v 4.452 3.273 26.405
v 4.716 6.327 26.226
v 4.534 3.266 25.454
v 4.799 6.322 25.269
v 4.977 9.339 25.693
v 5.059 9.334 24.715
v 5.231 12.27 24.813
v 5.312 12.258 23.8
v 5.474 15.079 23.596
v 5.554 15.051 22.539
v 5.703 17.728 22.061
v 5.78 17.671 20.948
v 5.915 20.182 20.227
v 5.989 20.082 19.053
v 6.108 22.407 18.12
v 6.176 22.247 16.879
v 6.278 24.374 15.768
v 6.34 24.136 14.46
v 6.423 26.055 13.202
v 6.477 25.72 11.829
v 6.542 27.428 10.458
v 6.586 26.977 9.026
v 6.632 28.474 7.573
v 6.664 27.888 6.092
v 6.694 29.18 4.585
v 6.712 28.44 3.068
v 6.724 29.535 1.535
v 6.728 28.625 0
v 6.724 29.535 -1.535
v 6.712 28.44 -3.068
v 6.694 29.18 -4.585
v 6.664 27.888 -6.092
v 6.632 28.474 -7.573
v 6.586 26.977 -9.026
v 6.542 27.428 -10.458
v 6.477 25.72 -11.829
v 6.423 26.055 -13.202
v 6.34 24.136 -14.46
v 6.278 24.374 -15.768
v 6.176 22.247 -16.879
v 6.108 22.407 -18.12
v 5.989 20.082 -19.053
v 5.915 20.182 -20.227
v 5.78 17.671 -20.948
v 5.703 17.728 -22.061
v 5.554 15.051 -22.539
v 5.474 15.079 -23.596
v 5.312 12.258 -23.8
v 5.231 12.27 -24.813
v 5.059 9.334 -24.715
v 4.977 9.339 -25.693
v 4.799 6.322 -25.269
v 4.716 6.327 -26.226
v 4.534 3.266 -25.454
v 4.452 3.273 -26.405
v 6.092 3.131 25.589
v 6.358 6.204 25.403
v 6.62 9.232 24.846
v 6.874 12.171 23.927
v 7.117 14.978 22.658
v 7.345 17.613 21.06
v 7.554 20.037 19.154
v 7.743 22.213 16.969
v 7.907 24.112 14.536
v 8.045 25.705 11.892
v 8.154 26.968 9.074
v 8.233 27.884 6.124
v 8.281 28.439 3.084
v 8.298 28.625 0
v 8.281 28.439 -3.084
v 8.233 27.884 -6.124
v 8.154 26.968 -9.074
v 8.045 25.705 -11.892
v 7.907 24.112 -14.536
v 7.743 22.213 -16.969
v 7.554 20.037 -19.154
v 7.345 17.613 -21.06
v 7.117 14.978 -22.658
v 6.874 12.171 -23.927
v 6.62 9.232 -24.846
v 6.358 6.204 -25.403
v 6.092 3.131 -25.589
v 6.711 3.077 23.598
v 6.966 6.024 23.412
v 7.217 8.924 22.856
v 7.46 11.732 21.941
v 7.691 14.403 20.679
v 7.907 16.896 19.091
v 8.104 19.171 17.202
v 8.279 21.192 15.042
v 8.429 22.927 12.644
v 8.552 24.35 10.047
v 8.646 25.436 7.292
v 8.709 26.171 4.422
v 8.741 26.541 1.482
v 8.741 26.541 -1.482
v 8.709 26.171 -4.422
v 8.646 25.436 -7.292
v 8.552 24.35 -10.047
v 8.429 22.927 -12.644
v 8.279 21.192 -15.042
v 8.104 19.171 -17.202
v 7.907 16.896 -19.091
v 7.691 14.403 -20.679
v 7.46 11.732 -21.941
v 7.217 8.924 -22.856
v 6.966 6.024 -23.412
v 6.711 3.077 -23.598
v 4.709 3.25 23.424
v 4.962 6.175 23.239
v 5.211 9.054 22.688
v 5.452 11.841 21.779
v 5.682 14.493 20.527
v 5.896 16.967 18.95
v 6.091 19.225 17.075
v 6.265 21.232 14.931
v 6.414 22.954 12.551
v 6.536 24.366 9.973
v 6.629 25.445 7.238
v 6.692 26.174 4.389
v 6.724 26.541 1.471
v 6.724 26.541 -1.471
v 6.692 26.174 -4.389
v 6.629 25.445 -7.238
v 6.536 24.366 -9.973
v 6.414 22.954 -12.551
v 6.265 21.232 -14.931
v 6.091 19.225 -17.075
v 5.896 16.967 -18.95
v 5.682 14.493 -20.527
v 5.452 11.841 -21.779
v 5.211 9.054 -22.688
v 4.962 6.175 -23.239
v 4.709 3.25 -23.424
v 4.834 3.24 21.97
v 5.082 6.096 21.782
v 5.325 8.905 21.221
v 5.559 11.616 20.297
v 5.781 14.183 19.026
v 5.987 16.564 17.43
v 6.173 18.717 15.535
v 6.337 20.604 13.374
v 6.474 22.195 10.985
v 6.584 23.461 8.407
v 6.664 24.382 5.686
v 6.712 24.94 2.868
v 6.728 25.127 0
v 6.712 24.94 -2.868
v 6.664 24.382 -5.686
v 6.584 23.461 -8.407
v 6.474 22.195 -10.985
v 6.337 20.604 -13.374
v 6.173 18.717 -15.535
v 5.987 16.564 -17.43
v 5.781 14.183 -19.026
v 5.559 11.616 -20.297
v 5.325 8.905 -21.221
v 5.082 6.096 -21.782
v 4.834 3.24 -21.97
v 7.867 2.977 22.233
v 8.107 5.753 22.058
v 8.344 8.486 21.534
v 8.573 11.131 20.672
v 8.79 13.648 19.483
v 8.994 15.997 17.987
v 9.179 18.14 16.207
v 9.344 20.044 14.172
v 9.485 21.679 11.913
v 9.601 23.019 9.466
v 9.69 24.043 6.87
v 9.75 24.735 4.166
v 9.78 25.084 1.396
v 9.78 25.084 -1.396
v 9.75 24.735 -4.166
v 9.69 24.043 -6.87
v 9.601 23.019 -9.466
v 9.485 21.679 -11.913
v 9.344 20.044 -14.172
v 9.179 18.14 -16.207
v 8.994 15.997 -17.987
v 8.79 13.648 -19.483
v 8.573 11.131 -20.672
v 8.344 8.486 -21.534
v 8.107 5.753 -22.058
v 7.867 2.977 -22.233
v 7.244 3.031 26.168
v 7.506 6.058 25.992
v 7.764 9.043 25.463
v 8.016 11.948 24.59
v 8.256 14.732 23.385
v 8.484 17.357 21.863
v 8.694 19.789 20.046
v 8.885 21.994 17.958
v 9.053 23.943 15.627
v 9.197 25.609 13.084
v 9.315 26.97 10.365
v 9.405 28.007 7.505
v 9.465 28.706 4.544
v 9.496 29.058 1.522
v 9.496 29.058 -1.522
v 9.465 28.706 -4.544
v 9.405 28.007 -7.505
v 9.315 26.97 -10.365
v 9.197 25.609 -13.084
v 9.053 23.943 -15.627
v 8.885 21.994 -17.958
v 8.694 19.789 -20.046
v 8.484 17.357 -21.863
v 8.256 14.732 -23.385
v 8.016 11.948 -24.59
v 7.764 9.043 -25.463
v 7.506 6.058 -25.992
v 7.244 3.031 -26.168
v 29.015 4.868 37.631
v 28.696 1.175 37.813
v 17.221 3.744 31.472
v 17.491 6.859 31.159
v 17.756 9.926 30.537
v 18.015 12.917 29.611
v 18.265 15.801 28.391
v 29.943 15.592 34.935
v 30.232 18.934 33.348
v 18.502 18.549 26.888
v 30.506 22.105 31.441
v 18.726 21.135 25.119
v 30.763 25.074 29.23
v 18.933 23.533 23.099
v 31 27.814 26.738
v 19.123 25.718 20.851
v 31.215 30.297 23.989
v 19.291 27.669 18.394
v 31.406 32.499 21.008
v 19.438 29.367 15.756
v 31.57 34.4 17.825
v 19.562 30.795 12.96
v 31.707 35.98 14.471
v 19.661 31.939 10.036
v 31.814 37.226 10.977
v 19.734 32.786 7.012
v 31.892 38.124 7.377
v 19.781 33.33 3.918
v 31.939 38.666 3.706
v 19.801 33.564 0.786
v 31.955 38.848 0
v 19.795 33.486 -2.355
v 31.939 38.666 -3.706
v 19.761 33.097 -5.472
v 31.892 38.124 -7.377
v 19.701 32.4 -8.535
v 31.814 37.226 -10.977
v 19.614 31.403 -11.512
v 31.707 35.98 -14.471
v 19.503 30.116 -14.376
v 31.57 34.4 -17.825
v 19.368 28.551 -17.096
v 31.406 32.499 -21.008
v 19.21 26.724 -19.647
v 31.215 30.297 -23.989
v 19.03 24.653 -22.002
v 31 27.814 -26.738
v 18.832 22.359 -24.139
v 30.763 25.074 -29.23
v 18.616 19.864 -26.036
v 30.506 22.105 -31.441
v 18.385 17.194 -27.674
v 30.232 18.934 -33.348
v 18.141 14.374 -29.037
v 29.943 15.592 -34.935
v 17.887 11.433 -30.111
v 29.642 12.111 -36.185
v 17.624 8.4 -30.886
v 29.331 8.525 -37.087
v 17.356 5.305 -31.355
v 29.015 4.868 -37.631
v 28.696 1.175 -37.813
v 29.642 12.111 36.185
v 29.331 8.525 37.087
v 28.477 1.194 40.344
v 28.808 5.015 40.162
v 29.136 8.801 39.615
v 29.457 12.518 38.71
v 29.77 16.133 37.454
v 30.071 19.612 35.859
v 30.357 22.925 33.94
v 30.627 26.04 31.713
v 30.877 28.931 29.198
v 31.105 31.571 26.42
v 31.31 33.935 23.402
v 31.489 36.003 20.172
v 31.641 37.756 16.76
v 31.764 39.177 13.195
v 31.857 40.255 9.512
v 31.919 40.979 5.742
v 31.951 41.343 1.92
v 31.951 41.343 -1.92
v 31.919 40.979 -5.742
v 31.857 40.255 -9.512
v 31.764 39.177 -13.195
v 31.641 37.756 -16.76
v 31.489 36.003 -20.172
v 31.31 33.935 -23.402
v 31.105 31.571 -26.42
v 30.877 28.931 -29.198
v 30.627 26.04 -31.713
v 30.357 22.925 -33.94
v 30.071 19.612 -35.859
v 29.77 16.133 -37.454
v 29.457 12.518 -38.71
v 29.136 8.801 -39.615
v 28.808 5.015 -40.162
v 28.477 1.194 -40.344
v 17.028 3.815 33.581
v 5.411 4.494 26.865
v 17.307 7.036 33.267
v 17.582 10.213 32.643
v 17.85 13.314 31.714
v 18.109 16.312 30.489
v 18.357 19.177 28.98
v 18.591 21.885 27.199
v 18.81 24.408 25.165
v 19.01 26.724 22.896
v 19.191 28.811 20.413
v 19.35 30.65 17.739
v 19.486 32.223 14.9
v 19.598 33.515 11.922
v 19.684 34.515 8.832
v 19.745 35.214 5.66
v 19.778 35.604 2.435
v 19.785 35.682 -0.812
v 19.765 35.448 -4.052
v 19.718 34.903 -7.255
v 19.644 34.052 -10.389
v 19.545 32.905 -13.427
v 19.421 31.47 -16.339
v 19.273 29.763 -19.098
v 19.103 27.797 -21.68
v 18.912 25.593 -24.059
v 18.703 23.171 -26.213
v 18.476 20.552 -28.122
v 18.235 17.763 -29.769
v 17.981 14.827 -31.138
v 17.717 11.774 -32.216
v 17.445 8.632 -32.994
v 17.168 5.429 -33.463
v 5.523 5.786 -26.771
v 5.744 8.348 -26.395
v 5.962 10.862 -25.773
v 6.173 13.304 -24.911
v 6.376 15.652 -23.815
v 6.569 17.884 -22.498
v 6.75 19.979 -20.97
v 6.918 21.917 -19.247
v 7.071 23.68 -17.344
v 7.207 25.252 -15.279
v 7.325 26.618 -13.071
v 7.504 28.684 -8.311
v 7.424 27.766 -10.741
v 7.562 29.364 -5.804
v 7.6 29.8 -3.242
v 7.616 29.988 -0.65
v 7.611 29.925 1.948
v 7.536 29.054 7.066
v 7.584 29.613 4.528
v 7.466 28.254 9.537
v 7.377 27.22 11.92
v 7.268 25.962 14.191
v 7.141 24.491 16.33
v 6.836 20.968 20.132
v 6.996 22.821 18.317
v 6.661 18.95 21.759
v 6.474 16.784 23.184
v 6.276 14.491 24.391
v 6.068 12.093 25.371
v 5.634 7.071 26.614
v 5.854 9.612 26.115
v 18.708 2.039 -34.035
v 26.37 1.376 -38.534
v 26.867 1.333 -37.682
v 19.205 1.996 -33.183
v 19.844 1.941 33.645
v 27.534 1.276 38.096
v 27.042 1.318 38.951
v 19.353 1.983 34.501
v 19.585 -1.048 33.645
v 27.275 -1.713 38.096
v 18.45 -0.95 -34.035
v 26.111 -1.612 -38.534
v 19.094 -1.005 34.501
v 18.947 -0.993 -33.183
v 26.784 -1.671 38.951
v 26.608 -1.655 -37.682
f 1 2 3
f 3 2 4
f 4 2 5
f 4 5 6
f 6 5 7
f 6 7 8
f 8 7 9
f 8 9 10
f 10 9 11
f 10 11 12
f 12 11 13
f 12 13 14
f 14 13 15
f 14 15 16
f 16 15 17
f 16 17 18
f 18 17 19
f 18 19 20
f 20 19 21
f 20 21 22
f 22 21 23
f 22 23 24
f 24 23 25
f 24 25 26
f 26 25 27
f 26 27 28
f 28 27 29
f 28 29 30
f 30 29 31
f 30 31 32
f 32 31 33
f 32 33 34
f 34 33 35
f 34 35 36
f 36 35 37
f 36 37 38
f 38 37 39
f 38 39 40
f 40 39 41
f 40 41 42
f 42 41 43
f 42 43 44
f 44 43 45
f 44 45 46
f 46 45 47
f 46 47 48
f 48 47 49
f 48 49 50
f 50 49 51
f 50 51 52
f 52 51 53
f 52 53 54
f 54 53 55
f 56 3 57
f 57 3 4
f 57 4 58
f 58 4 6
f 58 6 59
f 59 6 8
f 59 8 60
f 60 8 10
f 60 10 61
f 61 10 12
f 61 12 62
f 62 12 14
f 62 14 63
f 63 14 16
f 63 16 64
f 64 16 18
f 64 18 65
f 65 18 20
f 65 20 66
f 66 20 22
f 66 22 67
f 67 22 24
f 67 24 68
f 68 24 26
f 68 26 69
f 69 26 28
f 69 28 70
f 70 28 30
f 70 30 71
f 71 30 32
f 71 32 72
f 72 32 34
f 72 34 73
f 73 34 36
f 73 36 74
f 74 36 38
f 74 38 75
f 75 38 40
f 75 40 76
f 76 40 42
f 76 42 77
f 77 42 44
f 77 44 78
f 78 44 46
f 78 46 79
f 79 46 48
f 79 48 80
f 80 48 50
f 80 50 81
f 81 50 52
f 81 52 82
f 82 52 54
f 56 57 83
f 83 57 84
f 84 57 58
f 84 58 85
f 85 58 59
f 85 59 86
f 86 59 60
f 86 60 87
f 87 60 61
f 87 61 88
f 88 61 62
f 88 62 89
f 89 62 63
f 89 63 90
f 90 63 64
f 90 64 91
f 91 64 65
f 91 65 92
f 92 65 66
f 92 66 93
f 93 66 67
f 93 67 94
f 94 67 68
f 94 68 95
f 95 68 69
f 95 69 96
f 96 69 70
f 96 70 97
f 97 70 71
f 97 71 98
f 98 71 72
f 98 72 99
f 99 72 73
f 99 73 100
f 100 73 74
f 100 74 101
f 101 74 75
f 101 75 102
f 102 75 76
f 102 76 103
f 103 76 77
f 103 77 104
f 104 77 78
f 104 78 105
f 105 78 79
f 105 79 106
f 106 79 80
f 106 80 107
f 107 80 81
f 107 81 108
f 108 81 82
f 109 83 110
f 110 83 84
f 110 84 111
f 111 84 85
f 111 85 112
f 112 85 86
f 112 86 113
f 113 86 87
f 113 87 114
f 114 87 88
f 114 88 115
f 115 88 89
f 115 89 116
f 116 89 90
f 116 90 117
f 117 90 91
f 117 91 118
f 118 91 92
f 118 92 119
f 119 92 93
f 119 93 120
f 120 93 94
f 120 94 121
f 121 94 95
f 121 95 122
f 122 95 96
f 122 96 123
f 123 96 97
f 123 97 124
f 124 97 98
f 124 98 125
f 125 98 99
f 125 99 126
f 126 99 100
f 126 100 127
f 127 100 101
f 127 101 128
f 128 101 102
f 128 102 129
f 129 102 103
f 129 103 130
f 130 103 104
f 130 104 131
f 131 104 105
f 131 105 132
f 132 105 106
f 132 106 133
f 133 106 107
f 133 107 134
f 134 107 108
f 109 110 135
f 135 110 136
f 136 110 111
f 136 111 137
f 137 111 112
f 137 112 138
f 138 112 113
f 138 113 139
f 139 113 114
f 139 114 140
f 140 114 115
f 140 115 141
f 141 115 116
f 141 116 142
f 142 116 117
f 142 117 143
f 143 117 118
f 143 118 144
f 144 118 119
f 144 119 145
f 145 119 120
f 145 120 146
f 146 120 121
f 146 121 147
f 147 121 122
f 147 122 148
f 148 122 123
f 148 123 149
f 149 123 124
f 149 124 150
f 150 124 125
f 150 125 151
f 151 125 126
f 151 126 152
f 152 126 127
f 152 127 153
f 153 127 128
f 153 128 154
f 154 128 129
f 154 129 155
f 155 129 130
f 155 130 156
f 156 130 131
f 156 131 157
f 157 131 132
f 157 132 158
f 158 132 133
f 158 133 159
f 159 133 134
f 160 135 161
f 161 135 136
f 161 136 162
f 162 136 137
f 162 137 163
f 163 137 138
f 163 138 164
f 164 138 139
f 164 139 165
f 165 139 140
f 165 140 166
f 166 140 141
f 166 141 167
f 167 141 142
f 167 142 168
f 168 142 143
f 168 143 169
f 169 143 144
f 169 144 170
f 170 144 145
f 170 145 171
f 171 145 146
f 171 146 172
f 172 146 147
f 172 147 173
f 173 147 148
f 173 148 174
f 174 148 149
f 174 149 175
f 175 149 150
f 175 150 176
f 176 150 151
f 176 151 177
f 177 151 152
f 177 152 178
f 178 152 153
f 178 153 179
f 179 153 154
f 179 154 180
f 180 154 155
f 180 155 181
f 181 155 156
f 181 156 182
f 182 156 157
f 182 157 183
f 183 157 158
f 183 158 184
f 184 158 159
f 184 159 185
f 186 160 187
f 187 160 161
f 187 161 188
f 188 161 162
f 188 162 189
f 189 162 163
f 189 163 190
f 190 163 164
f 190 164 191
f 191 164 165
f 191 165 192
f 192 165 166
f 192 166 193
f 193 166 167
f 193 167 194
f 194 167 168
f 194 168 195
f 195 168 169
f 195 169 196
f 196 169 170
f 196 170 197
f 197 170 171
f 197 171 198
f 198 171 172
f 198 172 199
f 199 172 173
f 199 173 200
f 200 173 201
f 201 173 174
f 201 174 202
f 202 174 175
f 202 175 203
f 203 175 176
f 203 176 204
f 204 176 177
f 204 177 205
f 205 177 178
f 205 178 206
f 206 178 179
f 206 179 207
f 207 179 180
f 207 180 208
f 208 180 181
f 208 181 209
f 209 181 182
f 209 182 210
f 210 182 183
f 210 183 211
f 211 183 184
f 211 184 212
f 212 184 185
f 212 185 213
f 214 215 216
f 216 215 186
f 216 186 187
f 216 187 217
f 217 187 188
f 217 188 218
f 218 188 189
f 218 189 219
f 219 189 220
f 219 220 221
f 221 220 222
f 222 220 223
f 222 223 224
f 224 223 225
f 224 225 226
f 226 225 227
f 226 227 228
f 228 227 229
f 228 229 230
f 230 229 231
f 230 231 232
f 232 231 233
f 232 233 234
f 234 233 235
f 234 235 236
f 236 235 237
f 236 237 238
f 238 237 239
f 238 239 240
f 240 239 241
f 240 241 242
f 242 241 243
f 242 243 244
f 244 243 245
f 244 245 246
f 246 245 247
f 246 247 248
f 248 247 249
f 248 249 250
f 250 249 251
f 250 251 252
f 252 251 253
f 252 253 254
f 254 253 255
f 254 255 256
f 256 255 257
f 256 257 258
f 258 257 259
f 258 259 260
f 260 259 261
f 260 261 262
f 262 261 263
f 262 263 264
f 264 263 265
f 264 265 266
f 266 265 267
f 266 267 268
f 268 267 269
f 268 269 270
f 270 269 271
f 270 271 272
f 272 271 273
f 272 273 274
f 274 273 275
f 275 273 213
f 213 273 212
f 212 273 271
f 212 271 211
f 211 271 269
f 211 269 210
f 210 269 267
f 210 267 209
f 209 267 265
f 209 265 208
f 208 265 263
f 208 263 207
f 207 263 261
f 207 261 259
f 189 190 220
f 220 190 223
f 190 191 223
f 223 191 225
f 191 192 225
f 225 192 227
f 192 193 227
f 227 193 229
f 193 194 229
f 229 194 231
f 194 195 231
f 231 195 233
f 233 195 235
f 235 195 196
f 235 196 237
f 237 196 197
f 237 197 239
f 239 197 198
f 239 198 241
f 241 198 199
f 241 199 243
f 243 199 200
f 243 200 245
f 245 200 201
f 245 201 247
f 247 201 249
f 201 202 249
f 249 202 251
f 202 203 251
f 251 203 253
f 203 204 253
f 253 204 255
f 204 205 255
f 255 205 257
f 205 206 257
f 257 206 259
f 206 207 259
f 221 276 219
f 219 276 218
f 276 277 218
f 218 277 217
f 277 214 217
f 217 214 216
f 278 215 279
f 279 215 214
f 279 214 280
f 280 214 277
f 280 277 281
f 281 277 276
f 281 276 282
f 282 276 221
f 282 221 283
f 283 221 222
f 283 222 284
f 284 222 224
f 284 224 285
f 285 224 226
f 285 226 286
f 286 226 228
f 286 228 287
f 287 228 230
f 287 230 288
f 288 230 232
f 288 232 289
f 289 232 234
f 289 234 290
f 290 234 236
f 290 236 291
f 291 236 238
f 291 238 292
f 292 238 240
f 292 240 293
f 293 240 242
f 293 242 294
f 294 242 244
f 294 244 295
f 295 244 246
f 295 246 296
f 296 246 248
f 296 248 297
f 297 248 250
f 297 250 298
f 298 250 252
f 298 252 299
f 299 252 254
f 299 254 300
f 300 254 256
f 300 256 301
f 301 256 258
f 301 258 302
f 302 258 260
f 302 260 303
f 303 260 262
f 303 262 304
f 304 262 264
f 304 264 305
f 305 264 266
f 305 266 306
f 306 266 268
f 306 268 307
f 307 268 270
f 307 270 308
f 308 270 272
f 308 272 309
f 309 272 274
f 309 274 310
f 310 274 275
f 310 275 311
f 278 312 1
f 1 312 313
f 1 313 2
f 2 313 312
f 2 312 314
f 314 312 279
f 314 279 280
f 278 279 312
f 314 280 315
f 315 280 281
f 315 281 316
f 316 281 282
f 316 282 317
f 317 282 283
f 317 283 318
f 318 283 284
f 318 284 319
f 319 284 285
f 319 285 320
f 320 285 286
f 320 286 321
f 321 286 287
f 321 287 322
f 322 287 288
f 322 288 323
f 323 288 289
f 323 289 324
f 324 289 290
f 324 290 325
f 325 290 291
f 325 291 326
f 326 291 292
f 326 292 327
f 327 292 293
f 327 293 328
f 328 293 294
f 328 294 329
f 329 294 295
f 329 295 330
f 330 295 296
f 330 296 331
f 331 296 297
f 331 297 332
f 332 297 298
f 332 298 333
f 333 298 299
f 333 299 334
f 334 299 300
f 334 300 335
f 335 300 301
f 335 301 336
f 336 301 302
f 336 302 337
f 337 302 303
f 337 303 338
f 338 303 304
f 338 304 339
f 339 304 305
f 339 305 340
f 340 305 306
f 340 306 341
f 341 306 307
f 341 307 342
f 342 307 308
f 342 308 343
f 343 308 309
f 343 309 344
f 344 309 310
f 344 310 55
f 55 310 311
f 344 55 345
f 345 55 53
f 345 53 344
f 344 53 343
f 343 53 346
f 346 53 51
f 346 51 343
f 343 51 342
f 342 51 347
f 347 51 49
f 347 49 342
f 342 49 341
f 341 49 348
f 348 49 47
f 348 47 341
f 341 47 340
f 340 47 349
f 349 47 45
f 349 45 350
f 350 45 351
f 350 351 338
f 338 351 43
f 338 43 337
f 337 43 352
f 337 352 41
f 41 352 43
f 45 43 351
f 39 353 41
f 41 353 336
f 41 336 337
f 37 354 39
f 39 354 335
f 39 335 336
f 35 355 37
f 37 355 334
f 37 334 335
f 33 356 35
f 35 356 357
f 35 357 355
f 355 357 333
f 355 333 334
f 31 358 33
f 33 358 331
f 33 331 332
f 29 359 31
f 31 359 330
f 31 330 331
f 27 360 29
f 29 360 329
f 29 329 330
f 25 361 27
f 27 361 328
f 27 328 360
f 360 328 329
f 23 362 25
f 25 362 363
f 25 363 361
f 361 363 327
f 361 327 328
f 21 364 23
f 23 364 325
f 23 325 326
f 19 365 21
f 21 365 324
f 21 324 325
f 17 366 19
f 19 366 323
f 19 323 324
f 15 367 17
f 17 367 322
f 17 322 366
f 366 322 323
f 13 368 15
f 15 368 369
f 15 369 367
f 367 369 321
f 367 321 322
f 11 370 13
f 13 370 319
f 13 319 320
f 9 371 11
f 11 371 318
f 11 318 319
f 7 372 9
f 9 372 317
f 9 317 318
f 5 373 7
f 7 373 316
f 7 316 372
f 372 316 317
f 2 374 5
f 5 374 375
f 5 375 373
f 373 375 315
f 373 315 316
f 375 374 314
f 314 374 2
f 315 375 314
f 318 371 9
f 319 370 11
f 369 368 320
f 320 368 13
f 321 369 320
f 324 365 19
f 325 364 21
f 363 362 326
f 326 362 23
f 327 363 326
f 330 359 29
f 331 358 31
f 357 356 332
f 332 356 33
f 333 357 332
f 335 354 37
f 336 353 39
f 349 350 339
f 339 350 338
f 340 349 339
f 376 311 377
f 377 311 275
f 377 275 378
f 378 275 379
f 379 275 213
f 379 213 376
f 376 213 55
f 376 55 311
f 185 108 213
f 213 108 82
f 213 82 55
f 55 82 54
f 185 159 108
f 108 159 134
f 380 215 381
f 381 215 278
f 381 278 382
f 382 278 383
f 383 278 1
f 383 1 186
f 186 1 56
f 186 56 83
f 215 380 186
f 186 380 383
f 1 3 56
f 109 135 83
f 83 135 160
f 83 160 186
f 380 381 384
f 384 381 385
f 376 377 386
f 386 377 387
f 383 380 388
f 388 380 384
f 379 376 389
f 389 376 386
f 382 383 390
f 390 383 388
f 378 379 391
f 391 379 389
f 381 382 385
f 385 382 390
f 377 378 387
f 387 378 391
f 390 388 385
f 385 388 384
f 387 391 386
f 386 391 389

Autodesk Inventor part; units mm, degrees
ref_plane "YZ Plane" through (0, 0, 0) normal (1, 0, 0) x (0, 1, 0)
ref_plane "XZ Plane" through (0, 0, 0) normal (0, 1, 0) x (-1, 0, 0)
ref_plane "XY Plane" through (0, 0, 0) normal (0, 0, 1) x (1, 0, 0)
sketch "Sketch1" plane through (0, 0, 0) normal (1, 0, 0) x (0, 1, 0)
  arc A0 (6, 5) -> (0, 6.4776) centre (1.5083, -0.3184) ccw
  arc A1 (0, 6.4776) -> (-6, 2) centre (-0.0372, 0.2686) ccw
  arc A2 (-6, 2) -> (-5, -3.4628) centre (-1.5043, 0) ccw
  arc A3 (-5, -3.4628) -> (2, -5.5969) centre (1.6627, 5.8444) ccw
  arc A4 (2, -5.5969) -> (6.9353, -3.4628) centre (1.5482, 2.2219) ccw
  arc A5 (6, 5) -> (13, 1) centre (22.0402, 24.9454) ccw
  arc A6 (13, -1) -> (6.9353, -3.4628) centre (16.5953, -18.5517) ccw
  arc A7 (13, -1) -> (13, 1) centre (11.912, 0) ccw
  arc A8 (15.1251, -1.2068) -> (15.1251, 1.1192) centre (13.8597, -0.0438) ccw
  arc A9 (6.9841, 5.7712) -> (15.1251, 1.1192) centre (25.6388, 28.9677) ccw
  arc A10 (6.9841, 5.7712) -> (0.0061, 7.4897) centre (1.7602, -0.414) ccw
  arc A11 (0.0061, 7.4897) -> (-6.9719, 2.2822) centre (-0.0372, 0.2686) ccw
  arc A12 (-6.9719, 2.2822) -> (-5.8089, -4.0711) centre (-1.7435, -0.0438) ccw
  arc A13 (-5.8089, -4.0711) -> (2.3321, -6.5529) centre (1.9397, 6.7532) ccw
  arc A14 (2.3321, -6.5529) -> (8.0718, -4.0711) centre (1.8067, 2.5403) ccw
  arc A15 (15.1251, -1.2068) -> (8.0718, -4.0711) centre (19.3063, -21.6193) ccw
  point P0 (0, 0)
sketch "Sketch2" plane through (0, 0, 0) normal (0, 0, 1) x (1, 0, 0)
  arc A0 (4.5893, 15.6275) -> (5.3653, 12.7341) centre (8.4769, 15.1194) ccw
  arc A1 (7.1334, 6.0475) -> (5.3653, 12.7341) centre (-9.3019, 5.2787) ccw
  arc A2 (4, -1) -> (7.1334, 6.0475) centre (-2.3212, 6.0308) ccw
  arc A3 (4, -1) -> (2.2783, -7.605) centre (15.174, -7.4395) ccw
  arc A4 (4.5893, 15.6275) -> (-5.4042, 15.6275) centre (-0.4074, 13.9881) ccw
  arc A5 (-4.7137, -7.4395) -> (2.2783, -7.605) centre (-1.0169, 0.9638) ccw
  arc A6 (-5.4042, 15.6275) -> (-4.7137, -7.4395) centre (15.8945, 4.7212) ccw
  point P0 (0, 0)
  point P1 (16.0644, 6.0537)
sketch "Sketch3" plane through (0, 0, 0) normal (0, 0, 1) x (1, 0, 0)
  line L0 (8, 6) -> (8, -9.7213)
  line L1 (8, 6) -> (8, 19.0901)
  arc A0 (8, -9.7213) -> (8, 19.0901) centre (-3.1204, 4.6844) ccw
  point P0 (0, 0)
sketch "Sketch4" plane through (0, 0, 0) normal (0, 0, 1) x (1, 0, 0)
  arc A0 (4, -3) -> (3, -7.466) centre (10.199, -6.733) ccw
  arc A1 (4, -3) -> (7.6292, 3.7812) centre (-12.6955, 10.297) ccw
  arc A2 (7.6292, 3.7812) -> (7, 11) centre (-7.2238, 6.1234) ccw
  arc A3 (7, 11) -> (6.1482, 13) centre (-7.2238, 6.1234) ccw
  arc A4 (5.3976, 15.5783) -> (6.1482, 13) centre (8.6756, 15.1342) ccw
  arc A5 (3, -7.466) -> (9, -9) centre (8, -0.4104) ccw
  arc A6 (11, 18) -> (5.3976, 15.5783) centre (10.5, 11.4654) ccw
  arc A7 (9, -9) -> (11, 18) centre (-69.2967, 10.3738) ccw
  point P0 (0, 0)
sketch "Sketch5" plane through (0, 0, 0) normal (1, 0, 0) x (0, 1, 0)
  arc A0 (13, -1.7602) -> (13, 2.0171) centre (12.6189, 0.1284) ccw
  arc A1 (17, 0) -> (13, 2.0171) centre (12.9569, -3.0431) ccw
  arc A2 (13, -1.7602) -> (17, 0) centre (13.7728, 1.9087) ccw
  point P0 (0, 0)
sketch "Sketch7" plane through (0, 0, 0) normal (1, 0, 0) x (0, 1, 0)
  circle A0 centre (5, 0.3375) radius 25
  point P0 (0, 0)
  dimension "d10" = 50
sketch "Sketch8" plane through (0, 0, 0) normal (0, 0, 1) x (1, 0, 0)
  arc A0 (4.5893, 15.6275) -> (5.3653, 12.7341) centre (8.4769, 15.1194) ccw
  arc A1 (7.1334, 6.0475) -> (5.3653, 12.7341) centre (-9.3019, 5.2787) ccw
  arc A2 (4, -1) -> (7.1334, 6.0475) centre (-2.3212, 6.0308) ccw
  arc A3 (4, -1) -> (2.2783, -7.605) centre (15.174, -7.4395) ccw
  arc A4 (4.5893, 15.6275) -> (-5.4042, 15.6275) centre (-0.4074, 13.9881) ccw
  arc A5 (-4.7137, -7.4395) -> (2.2783, -7.605) centre (-1.0169, 0.9638) ccw
  arc A6 (-5.4042, 15.6275) -> (-4.7137, -7.4395) centre (15.8945, 4.7212) ccw
  point P0 (0, 0)
sketch "Sketch9" plane through (0, 0, 0) normal (0, 0, 1) x (1, 0, 0)
  line L0 (2.2936, -15.8564) -> (2.2936, -6.8564)
  arc A0 (2.2936, -6.8564) -> (-3.9962, -9.9765) centre (0.2723, -10.6815) ccw
  arc A1 (-4, -16) -> (2.2936, -15.8564) centre (-0.9465, -11.8394) ccw
  arc A2 (-3.9962, -9.9765) -> (-4, -16) centre (14.3076, -12.9998) ccw
  point P0 (0, 0)
sketch "Sketch10" plane through (0, 0, 0) normal (1, 0, 0) x (0, 1, 0)
  arc A0 (13, -1) -> (13, 1) centre (11.912, 0) ccw
  arc A1 (6, 5) -> (13, 1) centre (22.0402, 24.9454) ccw
  arc A2 (6, 5) -> (0, 6.4776) centre (1.5083, -0.3184) ccw
  arc A3 (0, 6.4776) -> (-6, 2) centre (-0.0372, 0.2686) ccw
  arc A4 (-6, 2) -> (-5, -3.4628) centre (-1.5043, 0) ccw
  arc A5 (-5, -3.4628) -> (2, -5.5969) centre (1.6627, 5.8444) ccw
  arc A6 (2, -5.5969) -> (6.9353, -3.4628) centre (1.5482, 2.2219) ccw
  arc A7 (13, -1) -> (6.9353, -3.4628) centre (16.5953, -18.5517) ccw
  point P0 (0, 0)
sketch "Sketch11" plane through (0, 0, 0) normal (0, 0, 1) x (1, 0, 0)
  arc A0 (4, -3) -> (3, -7.466) centre (10.199, -6.733) ccw
  arc A1 (4, -3) -> (7.6292, 3.7812) centre (-12.6955, 10.297) ccw
  arc A2 (7.6292, 3.7812) -> (7, 11) centre (-7.2238, 6.1234) ccw
  arc A3 (7, 11) -> (6.1482, 13) centre (-7.2238, 6.1234) ccw
  arc A4 (5.3976, 15.5783) -> (6.1482, 13) centre (8.6756, 15.1342) ccw
  arc A5 (11, -15) -> (11, 18) centre (-58.5, 1.5) ccw
  arc A6 (3, -7.466) -> (3.1376, -15) centre (85.1776, -9.733) ccw
  arc A7 (6, 24) -> (5.3976, 15.5783) centre (36.0186, 17.6203) ccw
  arc A8 (11, 18) -> (6, 24) centre (2.7033, 16.1694) ccw
  arc A9 (3.1376, -15) -> (11, -15) centre (7.0688, -10.5838) ccw
  arc A10 (5, 24) -> (4.5969, 15.5783) centre (45.756, 17.829) ccw
  arc A11 (-2, 19) -> (4.5969, 15.5783) centre (5.6189, 25.6189) ccw
  arc A12 (5, 24) -> (-2, 19) centre (11.5, 7.5) ccw
  point P0 (0, 0)
sketch "Sketch12" plane through (0, 0, 0) normal (1, 0, 0) x (0, 1, 0)
  circle A0 centre (3, 0.2318) radius 20
  circle A1 centre (3, 0.2318) radius 19
  point P0 (0, 0)
  dimension "d21" = 40
  dimension "d22" = 38
sketch "Sketch13" plane through (0, 0, 0) normal (0, 0, 1) x (1, 0, 0)
  arc A0 (4.6444, -3) -> (3.6444, -7.466) centre (10.8434, -6.733) ccw
  arc A1 (4.6444, -3) -> (8.2736, 3.7812) centre (-12.0511, 10.297) ccw
  arc A2 (8.2736, 3.7812) -> (7.6444, 11) centre (-6.5793, 6.1234) ccw
  arc A3 (7.6444, 11) -> (6.7926, 13) centre (-6.5793, 6.1234) ccw
  arc A4 (6.042, 15.5783) -> (6.7926, 13) centre (9.3201, 15.1342) ccw
  arc A5 (12.1446, -13.3563) -> (11.6094, 18.8213) centre (-67.1488, 1.418) ccw
  arc A6 (4.5893, 15.6275) -> (5.3653, 12.7341) centre (8.4769, 15.1194) ccw
  arc A7 (7.1334, 6.0475) -> (5.3653, 12.7341) centre (-9.3019, 5.2787) ccw
  arc A8 (4, -1) -> (7.1334, 6.0475) centre (-2.3212, 6.0308) ccw
  arc A9 (4, -1) -> (2.2783, -7.605) centre (15.174, -7.4395) ccw
  arc A10 (-5.4042, 15.6275) -> (-4.7137, -7.4395) centre (15.8945, 4.7212) ccw
  arc A11 (3.6444, -7.466) -> (4.6444, -19) centre (48.1921, -9.4141) ccw
  arc A12 (1, -17) -> (2.2783, -7.605) centre (-20.1318, -9.3402) ccw
  arc A13 (4.5893, 15.6275) -> (4, 28) centre (-90.183, 17.3138) ccw
  arc A14 (6.0097, 28) -> (6.042, 15.5783) centre (472.3708, 23) ccw
  arc A15 (4.6444, -19) -> (12.1446, -13.3563) centre (5.8088, -12.7419) ccw
  arc A16 (11.6094, 18.8213) -> (6.0097, 28) centre (-7.4499, 13.4913) ccw
  arc A17 (-4.7137, -7.4395) -> (1, -17) centre (32.2099, 8.14) ccw
  arc A18 (4, 28) -> (-5.4042, 15.6275) centre (39.2165, -8.5279) ccw
  point P0 (0, 0)
sketch "Sketch16" plane through (0, 0, 0) normal (0, 0, 1) x (1, 0, 0)
  arc A0 (7.7852, 10.9763) -> (6.9451, 12.9812) centre (-6.467, 6.1832) ccw
  arc A1 (8.372, 3.7539) -> (7.7852, 10.9763) centre (-6.467, 6.1832) ccw
  arc A2 (4.7031, -3.0059) -> (8.372, 3.7539) centre (-11.9141, 10.3888) ccw
  arc A3 (4.7031, -3.0059) -> (3.6769, -7.4659) centre (10.88, -6.7752) ccw
  arc A4 (6.2096, 15.5639) -> (6.9451, 12.9812) centre (9.485, 15.1006) ccw
  line L0 (3.6769, -7.4659) -> (3.6769, -13)
  line L1 (3.6769, -13) -> (8.7312, -13)
  line L2 (7.1813, -23) -> (8.45, -23) projected
  line L3 (6.2096, 15.5639) -> (6.0634, 19)
  line L4 (6.0634, 19) -> (8.7312, 19)
  line L5 (8.7312, 19) -> (8.7312, -13)
  point P0 (0, 0)
sketch "Sketch18" plane through (0, 0, 0) normal (0, 1, 0) x (-1, 0, 0)
  arc A0 (0, 16) -> (0, -16) centre (63, 0) ccw
  arc A1 (0, -16) -> (0, 16) centre (-1, 0) ccw
  point P0 (0, 0)
sketch "Sketch19" plane through (0, 0, 0) normal (0, 0, 1) x (1, 0, 0)
  arc A0 (0, -13) -> (0, 21.2939) centre (-44.6367, 4.1469) ccw
  arc A1 (0, 21.2939) -> (0, -13) centre (9.2646, 4.1469) ccw
  point P0 (0, 0)
sketch "Sketch20" plane through (0, 0, 0) normal (0, 1, 0) x (-1, 0, 0)
  arc A0 (0, 18) -> (0, -21) centre (116.9496, -1.5) ccw
  arc A1 (0, -21) -> (0, 18) centre (-188.5, -1.5) ccw
  point P0 (0, 0)
sketch "Sketch21" plane through (0, 0, 0) normal (0, 0, 1) x (1, 0, 0)
  arc A0 (4.5893, 15.6275) -> (5.3653, 12.7341) centre (8.4769, 15.1194) ccw
  arc A1 (7.1334, 6.0475) -> (5.3653, 12.7341) centre (-9.3019, 5.2787) ccw
  arc A2 (4, -1) -> (7.1334, 6.0475) centre (-2.3212, 6.0308) ccw
  arc A3 (4, -1) -> (2.2783, -7.605) centre (15.174, -7.4395) ccw
  arc A4 (-5.4042, 15.6275) -> (-4.7137, -7.4395) centre (15.8945, 4.7212) ccw
  arc A5 (1.6146, -47) -> (2.2783, -7.605) centre (-871.3055, -12.5889) ccw
  arc A6 (-4.7137, -7.4395) -> (1.6146, -47) centre (3.6662, -26.3854) ccw
  arc A7 (6.6047, 48.2766) -> (4.5893, 15.6275) centre (207.8183, 19.4692) ccw
  arc A8 (6.6047, 48.2766) -> (-5.4042, 15.6275) centre (18.1068, 25.5128) ccw
  point P0 (4.9602, 0)
sketch "Sketch22" plane through (0, 0, 0) normal (1, 0, 0) x (0, 1, 0)
  arc A0 (12.671, -1.508) -> (10.1452, -2.4415) centre (13.2273, -6.897) ccw
  arc A1 (5.972, -5.9193) -> (10.1452, -2.4415) centre (1.4729, 3.7221) ccw
  arc A2 (-1.0034, -7.134) -> (5.972, -5.9193) centre (0.0411, 7.5036) ccw
  arc A3 (-6.1623, -3.0965) -> (-1.0034, -7.134) centre (-0.5861, -1.2862) ccw
  arc A4 (-5.468, 3.7221) -> (-6.1623, -3.0965) centre (0.6002, -0.3405) ccw
  arc A5 (6.5632, 5.6579) -> (-0.5861, 6.5886) centre (1.6095, -4.4698) ccw
  arc A6 (-0.5861, 6.5886) -> (-5.468, 3.7221) centre (0, 0) ccw
  arc A7 (6.5632, 5.6579) -> (11.3492, 2.8919) centre (22.0985, 27.015) ccw
  arc A8 (14.2401, 1.3463) -> (11.3492, 2.8919) centre (11.1023, -1.0462) ccw
  arc A9 (13.4173, -1.2862) -> (14.2401, 1.3463) centre (12.4465, 0.462) ccw
  arc A10 (12.671, -1.508) -> (13.4173, -1.2862) centre (12.7302, -0.341) ccw
  point P0 (0, 0)
  point P1 (20.1069, -9.3097)
sketch "Sketch23" plane through (0, 0, 0) normal (0, 0, 1) x (1, 0, 0)
  arc A0 (4, -3) -> (3, -7.466) centre (10.199, -6.733) ccw
  arc A1 (4, -3) -> (7.6292, 3.7812) centre (-12.6955, 10.297) ccw
  arc A2 (7.6292, 3.7812) -> (7, 11) centre (-7.2238, 6.1234) ccw
  arc A3 (7, 11) -> (6.1482, 13) centre (-7.2238, 6.1234) ccw
  arc A4 (5.3976, 15.5783) -> (6.1482, 13) centre (8.6756, 15.1342) ccw
  arc A5 (3, -7.466) -> (12.0039, -34.009) centre (74.5087, 1.9925) ccw
  arc A6 (12.0039, -34.009) -> (12.0039, 40.009) centre (-50.8687, 3) ccw
  arc A7 (12.0039, 40.009) -> (5.3976, 15.5783) centre (75.5489, 9.7171) ccw
  point P0 (0, 0)
sketch "Sketch24" plane through (0, 0, 0) normal (1, 0, 0) x (0, 1, 0)
  circle A0 centre (4, 0) radius 24.0208
  circle A1 centre (4, 0) radius 54.037
  point P0 (0, 0)
sketch "Sketch25" plane through (0, 0, 0) normal (0, 0, 1) x (1, 0, 0)
  line L0 (2.9628, -6.7024) -> (3, -28)
  arc A0 (7, 36) -> (4.5756, 19.3965) centre (118.9772, 11.1705) ccw
  arc A1 (5.9839, 23.9235) -> (5.3976, 15.5783) centre (44.4323, 17.0293) ccw
  arc A2 (5.9839, 23.9235) -> (7, 33) centre (-89.9402, 39.2578) ccw
  arc A3 (5.3976, 15.5783) -> (7, 33) centre (-0.8843, 24.9407) ccw
  arc A4 (7, 36) -> (4.5756, 19.3965) centre (13.0884, 26.6322) ccw
  arc A5 (3, -28) -> (2.9628, -6.7024) centre (-3.3961, -17.3623) ccw
  point P0 (0, 0)
sketch "Sketch31" plane through (0, 0, 0) normal (1, 0, 0) x (0, 1, 0)
  circle A0 centre (4.1775, 0) radius 24.15
  circle A1 centre (4.1775, 0) radius 23
  point P0 (0, 0)
  dimension "d65" = 46
  dimension "d66" = 48.3
sketch "Sketch32" plane through (0, 0, 0) normal (0, 0, 1) x (1, 0, 0)
  arc A0 (4, -1) -> (2.2783, -7.605) centre (15.174, -7.4395) ccw
  arc A1 (4, -1) -> (7.1334, 6.0475) centre (-2.3212, 6.0308) ccw
  arc A2 (7.1334, 6.0475) -> (5.3653, 12.7341) centre (-9.3019, 5.2787) ccw
  arc A3 (4.5893, 15.6275) -> (5.3653, 12.7341) centre (8.4769, 15.1194) ccw
  arc A4 (-5.4042, 15.6275) -> (-4.7137, -7.4395) centre (15.8945, 4.7212) ccw
  arc A5 (1.6146, -47) -> (2.2783, -7.605) centre (-871.3055, -12.5889) ccw
  arc A6 (-4.7137, -7.4395) -> (1.6146, -47) centre (3.6662, -26.3854) ccw
  arc A7 (6.6047, 48.2766) -> (4.5893, 15.6275) centre (207.8183, 19.4692) ccw
  arc A8 (6.6047, 48.2766) -> (-5.4042, 15.6275) centre (18.1068, 25.5128) ccw
  point P0 (0, 0)
sketch "Sketch34" plane through (0, 0, 0) normal (0, 0, 1) x (1, 0, 0)
  arc A0 (5, -4) -> (9, 6) centre (-7, 6.6) ccw
  arc A1 (5, -4) -> (4, -8) centre (10.5, -7.5) ccw
  arc A2 (4, -19.9725) -> (4, -8) centre (-95.2669, -13.9862) ccw
  arc A3 (9, 6) -> (6.6308, 15) centre (-16.4523, 4.1118) ccw
  line L0 (6.6308, 15) -> (6.6308, 28.2457)
  arc A4 (4, -19.9725) -> (6.6308, 28.2457) centre (64.4177, 0.9119) ccw
  point P0 (0, 0)
sketch "Sketch35" plane through (0, 0, 0) normal (0, 0, 1) x (1, 0, 0)
  arc A0 (12, -8) -> (-7, -11) centre (15.0455, -88.9545) ccw
  arc A1 (-7, -11) -> (12, -8) centre (3.194, -13.8955) ccw
  point P0 (0, 0)
ref_plane "Work Plane16" through (6.6308, 4.1775, 0) normal (1, 0, 0) x (0, 0, -1)
sketch "Sketch36" plane through (6.6308, 4.1775, 0) normal (1, 0, 0) x (0, 0, -1)
  arc A0 (21.5893, 10.8225) -> (-21.5893, 10.8225) centre (0, -0.149) ccw
  arc A1 (20.2947, 10.8225) -> (-20.2947, 10.8225) centre (0, 0) ccw
  line L0 (-21.5893, 10.8225) -> (-20.2947, 10.8225)
  line L1 (-21.5893, 10.8225) -> (-20.2947, 10.8225)
  line L2 (20.2947, 10.8225) -> (21.5893, 10.8225)
  point P0 (0, -4.1775)
sketch "Sketch37" plane through (0, 0, 0) normal (1, 0, 0) x (0, 1, 0)
  arc A0 (15, 20.2947) -> (6, 22.9277) centre (4.1775, 0) ccw
  arc A1 (15, 21.5893) -> (6, 24.0811) centre (4.9955, 2.9543) ccw
  line L0 (15, 21.5893) -> (15, 20.2947)
  line L1 (15, 21.5893) -> (15, 20.2947)
  line L2 (6, 22.9277) -> (6, 24.0811)
  line L3 (6, 24.0811) -> (6, 22.9277)
  line L4 (15, -20.2947) -> (15, -21.5893) projected
  line L5 (15, -21.5351) -> (15, -20.2947)
  arc A2 (6, -24.0811) -> (15, -21.5893) centre (4.3914, -0.7727) ccw
  arc A3 (6, -22.9277) -> (15, -20.2947) centre (4.1775, 0) ccw
  line L6 (6, -24.0811) -> (6, -22.9277) projected
  line L7 (6, -24.0811) -> (6, -22.9277)
  point P0 (0, 0)
sketch "Sketch38" plane through (0, 0, 0) normal (0, 0, 1) x (1, 0, 0)
  arc A0 (7.1334, 6) -> (5.3972, 12.671) centre (-9.2641, 5.2939) ccw
  arc A1 (4.5581, 15) -> (5.3972, 12.671) centre (8.676, 15.1681) ccw
  line L0 (0, 15) -> (4.5581, 15) projected
  line L1 (0, 6) -> (7.1334, 6) projected
  arc A2 (4.5581, 15) -> (7.1334, 6) centre (1.4649, 9.2464) ccw
  point P0 (0, 0)
  point P1 (6.4152, 10.1452)
  point P2 (4.945, 13.4173)
sketch "Sketch39" plane through (0, 0, 0) normal (0, 0, 1) x (1, 0, 0)
  arc A0 (9, 6) -> (11.63, 15) centre (12.0023, 10.0069) ccw
  arc A1 (9, 6) -> (11.63, 15) centre (-3.4729, 14.5291) ccw
  point P0 (0, 0)
sketch "Sketch40" plane through (0, 0, 0) normal (0, 0, 1) x (1, 0, 0)
  arc A0 (1, -11) -> (5, -7) centre (4.0607, -10.0607) ccw
  arc A1 (5, -7) -> (1, -11) centre (6.5, -12.5) ccw
  point P0 (0, 0)
  point P1 (2.963, -6.7889)
sketch "Sketch41" plane through (0, 0, 0) normal (0, 0, 1) x (1, 0, 0)
  line L0 (26.7844, 11.2115) -> (14, 17)
  line L1 (14, 17) -> (1.6259, -10.3292)
  line L2 (1.6259, -10.3292) -> (14.4104, -16.1177)
  line L3 (14.4104, -16.1177) -> (26.7844, 11.2115)
  point P0 (0, 0)
  dimension "d87" = 30
ref_plane "Work Plane13" through (2.4677, -8.47, 20.5733) normal (0.9109718, -0.4124686, 0) x (0, 0, -1)
sketch "Sketch43" plane through (2.4677, -8.47, 20.5733) normal (0.9109718, -0.4124686, 0) x (0, 0, -1)
  line L0 (-2.3543, 15.8761) -> (-3.5078, 15.8761)
  line L1 (-3.5078, 15.8761) -> (-2.3543, 15.8761)
  arc A0 (-3.5078, 15.8761) -> (0.1198, -0.2516) centre (25.1927, 13.8599) ccw
  line L2 (1.4913, -0.2516) -> (0.1198, -0.2516)
  line L3 (0.1198, -0.2516) -> (1.4913, -0.2516)
  line L4 (-1.278, 5.6151) -> (14.6782, 5.6151) projected
  arc A1 (-2.3543, 15.8761) -> (1.4913, -0.2516) centre (22.6187, 13.3086) ccw
  point P0 (20.5733, 6.6981)
  point P1 (1.4551, -0.1819)
ref_plane "Work Plane14" through (2.964, -7.3739, 19.8888) normal (0.9109718, -0.4124686, 0) x (0, 0, -1)
sketch "Sketch45" plane through (2.964, -7.3739, 19.8888) normal (0.9109718, -0.4124686, 0) x (0, 0, -1)
  line L0 (43.9735, 14.6294) -> (42.8127, 14.6294)
  line L1 (42.8202, 14.6294) -> (43.9735, 14.6294) projected
  arc A0 (40.3423, -1.4549) -> (43.9735, 14.6294) centre (15.2518, 12.6615) ccw
  arc A1 (39, -1.4549) -> (42.8202, 14.6294) centre (15.5968, 12.5994) ccw
  line L2 (40.3423, -1.4549) -> (38.9708, -1.4549)
  line L3 (38.9708, -1.4549) -> (40.3423, -1.4549)
  point P0 (19.8888, 5.4949)
sketch "Sketch46" plane through (0, 0, 0) normal (0, 0, 1) x (1, 0, 0)
  arc A0 (8.9982, -11.6413) -> (8.9982, 28.2457) centre (46.0154, 8.3022) ccw
  line L0 (8.9982, 28.2457) -> (8.9982, -11.6413)
  point P0 (0, 0)
sketch "Sketch47" plane through (0, 0, 0) normal (0, 0, 1) x (1, 0, 0)
  line L0 (13.5135, 0) -> (-7.3337, 0)
  line L1 (2.3639, -20.2737) -> (9.0424, -23.2975) construction
  line L2 (2.3639, -20.2737) -> (9.0424, -23.2975)
  line L3 (9.0424, -23.2975) -> (9.0424, -24.2545)
  line L4 (9.0424, -24.2545) -> (2.3639, -21.2074)
  line L5 (2.3639, -21.2074) -> (2.3639, -20.2737)
  point P0 (0, 0)
sketch "Sketch48" plane through (0, 0, 0) normal (1, 0, 0) x (0, 1, 0)
  line L0 (-7.605, -19.7528) -> (-7.605, 19.6257)
  arc A0 (-7.605, 19.6257) -> (-7.605, -19.7528) centre (1.069, -0.0635) ccw
  point P0 (0, 0)
sketch "Sketch49" plane through (0, 0, 0) normal (0, 0, 1) x (1, 0, 0)
  line L0 (2.2936, -7.605) -> (2.2936, -6.8564) projected
  line L1 (2.2936, -6.8564) -> (2.2936, -25.2348)
  arc A0 (2.2936, -6.8564) -> (2.2936, -25.2348) centre (2.131, -16.0456) ccw
  point P0 (0, 0)
sketch "Sketch50" plane through (0, 0, 0) normal (0, 0, 1) x (1, 0, 0)
  arc A0 (3.3209, -23.1081) -> (8.9982, 5.953) centre (-195.8612, 30.8887) ccw
  arc A1 (3.3209, -23.1081) -> (3, 48) centre (19.245, 12.5186) ccw
  arc A2 (3, 48) -> (8, 28.2457) centre (151.9378, 75.1876) ccw
  line L0 (8.9982, -11.6413) -> (8.9982, 5.953) projected
  arc A3 (8.9982, 5.953) -> (8, 28.2457) centre (-139.412, 10.4765) ccw
  point P0 (0, 0)
  point P1 (8.9982, 6)
sketch "Sketch52" plane through (0, 0, 0) normal (1, 0, 0) x (0, 1, 0)
  line L0 (32, 0) -> (-26, 0)
  arc A0 (32, 0) -> (-26, 0) centre (3, 2.0806) ccw
  point P0 (0, 0)
sketch "Sketch53" plane through (0, 0, 0) normal (1, 0, 0) x (0, 1, 0)
  arc A0 (13, -1.4779) -> (13, 1.4779) centre (12.9444, 0) ccw
  arc A1 (13, 1.4779) -> (13, -1.4779) centre (15.3831, 0) ccw
  point P0 (0, 0)
sketch "Sketch55" plane through (0, 0, 0) normal (0, 0, 1) x (1, 0, 0)
  arc A0 (4.58, 19.7001) -> (6, 11) centre (32.9729, 19.8682) ccw
  arc A1 (4.58, 19.7001) -> (6, 11) centre (11.8372, 16.4186) ccw
  point P0 (0, 0)
ref_plane "Work Plane5" through (0, 0, 15) normal (0, 0, 1) x (1, 0, 0)
sketch "Sketch56" plane through (0, 0, 15) normal (0, 0, 1) x (1, 0, 0)
  arc A0 (6.4152, 10.1452) -> (4, 25) centre (-21.1275, 13.2908) ccw
  arc A1 (4, 25) -> (6.4152, 10.1452) centre (20.5376, 20.0651) ccw
  point P0 (0, 0)
ref_plane "Work Plane3" through (0, 0, 0) normal (0, 0, 1) x (1, 0, 0)
ref_plane "Work Plane6" through (0, 0, -15) normal (0, 0, 1) x (1, 0, 0)
sketch "Sketch57" plane through (0, 0, -15) normal (0, 0, 1) x (1, 0, 0)
  arc A0 (5.512, 20.9612) -> (4.7992, 23.1043) centre (-21.1275, 13.2908) ccw projected
  arc A1 (6.4152, 10.1452) -> (4.7992, 23.1043) centre (-21.1275, 13.2908) ccw
  arc A2 (4.7992, 23.1043) -> (6.4152, 10.1452) centre (4.6042, 16.4997) ccw
  point P0 (0, 0)
ref_plane "Work Plane7" through (0, 0, -15) normal (0, 0, 1) x (1, 0, 0)
sketch "Sketch58" plane through (0, 0, -15) normal (0, 0, 1) x (1, 0, 0)
  arc A0 (4.5821, 19.4868) -> (4.7951, 33.432) centre (-39.5171, 27.1347) ccw
  arc A1 (4.5821, 19.4868) -> (5.6499, 12.1459) centre (32.9729, 19.8682) ccw
  arc A2 (4.7951, 33.432) -> (5.6499, 12.1459) centre (19.8894, 23.3779) ccw
  point P0 (0, 0)
ref_plane "Work Plane8" through (0, 0, -15) normal (0, 0, 1) x (1, 0, 0)
sketch "Sketch59" plane through (0, 0, -15) normal (0, 0, 1) x (1, 0, 0)
  arc A0 (4.5821, 19.4868) -> (4.7951, 33.432) centre (-39.5171, 27.1347) ccw
  arc A1 (4.5821, 19.4868) -> (5.6499, 12.1459) centre (32.9729, 19.8682) ccw
  arc A2 (4.7951, 33.432) -> (5.6499, 12.1459) centre (19.8894, 23.3779) ccw
  point P0 (0, 0)
sketch "Sketch60" plane through (0, 0, 0) normal (1, 0, 0) x (0, 1, 0)
  line L0 (12.1111, 15) -> (12.1111, 21.5884)
  line L1 (12.1111, 21.5884) -> (12.1111, 15)
  line L2 (20.9612, 15.726) -> (20.9612, 15) projected
  line L3 (20.9612, 15) -> (20.9612, 15.726)
  arc A0 (20.9612, 15.726) -> (12.1111, 21.5884) centre (4.1775, 0) ccw
  line L4 (12.1111, -21.5884) -> (12.1111, -15)
  line L5 (12.1459, -15) -> (12.1111, -21.5884)
  line L6 (20.9612, -15) -> (20.9612, -15.726) projected
  line L7 (20.9612, -15) -> (20.9612, -15.726)
  arc A1 (12.1111, -21.5884) -> (20.9612, -15.726) centre (4.1775, 0) ccw
  line L8 (12.1111, 15) -> (12.1111, 21.5884) projected
  line L9 (22.5441, 15) -> (20.9612, 15) projected
  arc A2 (12.1111, 15) -> (20.9612, 15) centre (16.5362, 45.9173) ccw
  arc A3 (20.9612, -15) -> (12.1111, -15) centre (16.5362, -33.5759) ccw
  point P0 (0, 0)
ref_plane "Work Plane9" through (0, 0, -15) normal (0, 0, 1) x (1, 0, 0)
sketch "Sketch61" plane through (0, 0, -15) normal (0, 0, 1) x (1, 0, 0)
  line L0 (5.6658, 12.1111) -> (6.5691, 12.1111) projected
  line L1 (6.5691, 12.1111) -> (-0.1843, 12.1111)
  line L2 (5.512, 20.9612) -> (-0.1843, 20.9612)
  line L3 (0, 20.9612) -> (4.8126, 20.9612) projected
  arc A0 (-0.1843, 20.9612) -> (-0.1843, 12.1111) centre (11.2781, 16.5362) ccw
  line L4 (6.5691, 12.1111) -> (6.63, 12.1111) projected
  arc A1 (6.5691, 12.1111) -> (5.512, 20.9612) centre (-21.1275, 13.2908) ccw
  point P0 (0, 0)
ref_plane "Work Plane10" through (0, 0, -15) normal (0, 0, 1) x (1, 0, 0)
sketch "Sketch62" plane through (0, 0, -15) normal (0, 0, 1) x (1, 0, 0)
  line L0 (6.5691, 12.1111) -> (-0.1843, 12.1111)
  line L1 (5.512, 20.9612) -> (-0.1843, 20.9612)
  arc A0 (-0.1843, 20.9612) -> (-0.1843, 12.1111) centre (11.2781, 16.5362) ccw
  line L2 (4.8126, 20.9612) -> (5.512, 20.9612) projected
  arc A1 (5.512, 20.9612) -> (5.3976, 15.5783) centre (27.7821, 17.7954) ccw
  arc A2 (5.3976, 15.5783) -> (6.1482, 13) centre (8.4638, 15.0726) ccw
  line L3 (6.1482, 13) -> (6.5691, 12.1111)
  point P0 (0, 0)
  point P1 (0, 20.9612)
ref_plane "Work Plane12" through (0, 0, 15) normal (0, 0, 1) x (1, 0, 0)
sketch "Sketch65" plane through (0, 0, 15) normal (0, 0, 1) x (1, 0, 0)
  line L0 (0, 12.1111) -> (0, 20.9612)
  line L1 (0, 20.9612) -> (0, 12.1111)
  line L2 (0, 12.1111) -> (5.6659, 12.1111)
  line L3 (0, 12.1111) -> (0, 20.9612) projected
  line L4 (0, 20.9612) -> (4.8105, 20.9612)
  line L5 (0, 20.9612) -> (5.512, 20.9612) projected
  arc A0 (4.8126, 20.9612) -> (4.8105, 16.2544) centre (16.6683, 18.6025) ccw
  arc A1 (4.8105, 16.2544) -> (5.6659, 12.1111) centre (31.8657, 19.6806) ccw
  point P0 (0, 0)
ref_plane "Work Plane11" through (0, 0, 15) normal (0, 0, 1) x (1, 0, 0)
sketch "Sketch67" plane through (0, 0, 15) normal (0, 0, 1) x (1, 0, 0)
  line L0 (0, 12.1111) -> (5.6658, 12.1111)
  line L1 (6.5691, 12.1111) -> (0, 12.1111)
  line L2 (0, 12.1111) -> (0, 20.9612) projected
  line L3 (0, 12.1111) -> (0, 20.9612)
  line L4 (5.512, 20.9612) -> (0, 20.9612)
  arc A0 (5.512, 20.9612) -> (5.3976, 15.5783) centre (27.7821, 17.7954) ccw
  line L5 (6.5691, 12.1111) -> (6.1482, 13)
  arc A1 (5.3976, 15.5783) -> (6.1482, 13) centre (8.4638, 15.0726) ccw
  point P0 (0, 0)
ref_plane "Work Plane15" through (6.63, 0, 0) normal (1, 0, 0) x (0, 0, -1)
sketch "Sketch68" plane through (6.63, 0, 0) normal (1, 0, 0) x (0, 0, -1)
  arc A0 (14, 22) -> (14, 11) centre (62.4766, 16.5) ccw
  arc A1 (14, 11) -> (14, 22) centre (11.848, 16.5) ccw
  arc A2 (14, 10) -> (21.6289, 12) centre (11.8491, 33.7543) ccw
  arc A3 (13, 15) -> (14, 10) centre (21, 14) ccw
  arc A4 (21.6289, 12) -> (13, 15) centre (14.4695, 5.3172) ccw
  arc A5 (-21.5884, 12.1111) -> (-13.1641, 12.1459) centre (-17.4061, 19.3527) ccw
  arc A6 (-13.1641, 12.1459) -> (-21.5884, 12.1111) centre (-17.3607, 8.3588) ccw
  arc A7 (-14.3886, 22) -> (-14.4349, 10.6825) centre (-5.1535, 16.3034) ccw
  arc A8 (-14.4349, 10.6825) -> (-14.3886, 22) centre (-35.9078, 16.429) ccw
  point P0 (0, 0)
sketch "Sketch69" plane through (0, 0, 0) normal (1, 0, 0) x (0, 1, 0)
  arc A0 (-3, -7.5651) -> (11.0179, -2.9788) centre (0.2424, 6.2404) ccw
  line L0 (-3, -7.5651) -> (-3, -6.6289)
  line L1 (11.0179, -2.9788) -> (11.0179, -1.943)
  arc A1 (11.0179, -1.943) -> (10.1452, -2.6581) centre (12.4245, -4.5498) ccw
  arc A2 (-3, -6.6289) -> (10.1452, -2.6581) centre (0.5731, 5.2863) ccw
  line L2 (-8.9035, 0) -> (17, 0) construction
  arc A3 (11.0179, 2.9788) -> (-3, 7.5651) centre (0.2424, -6.2404) ccw
  line L3 (-3, 7.5651) -> (-3, 6.6289)
  line L4 (11.0179, 2.9788) -> (11.0179, 1.943)
  arc A4 (10.1452, 2.6581) -> (11.0179, 1.943) centre (12.4245, 4.5498) ccw
  arc A5 (10.1452, 2.6581) -> (-3, 6.6289) centre (0.5731, -5.2863) ccw
  point P0 (0, 0)
  point P1 (6.0475, -5.8837)
sketch "Sketch70" plane through (0, 0, 0) normal (0, 0, 1) x (1, 0, 0)
  arc A0 (4, -3) -> (7.812, 5.972) centre (-6.9875, 6.9641) ccw
  arc A1 (4, -3) -> (8, -3) centre (6, 0.2231) ccw
  arc A2 (8, -3) -> (7.812, 5.972) centre (-95.4852, -0.6804) ccw
  arc A3 (7.8, 6.0475) -> (6.9938, 11.0179) centre (-4.9894, 6.5238) ccw
  arc A4 (7.8, 6.0475) -> (6.9938, 11.0179) centre (7.8859, 8.612) ccw
  arc A5 (3.0655, -3) -> (5.6658, 12.1111) centre (-16.4907, 8.1445) ccw
  line L0 (3.0655, -3) -> (4, -3) projected
  arc A6 (5.6658, 12.1111) -> (3.0655, -3) centre (0.9123, 5.1498) ccw
sketch "Sketch71" plane through (0, 0, 0) normal (0, 0, 1) x (1, 0, 0)
  line L0 (21.3234, 1.813) -> (-3.8328, 3.9894)
  line L1 (6.7281, 29.5792) -> (31.9548, 41.3881)
  line L2 (2.1762, -23.0341) -> (25, -39)
  line L3 (2.1762, -23.0341) -> (2.3639, -21.5054)
  line L4 (2.3639, -21.5054) -> (3.7434, -22.1348)
  line L5 (3.7434, -22.1348) -> (4.2532, -20)
  line L6 (4.2532, -20) -> (3.0537, -20.1909)
  line L7 (3.0537, -20.1909) -> (3, -18)
  line L8 (3, -18) -> (6, -19)
  line L9 (6, -19) -> (5.7028, -22.6912)
  line L10 (5.7028, -22.6912) -> (25, -36)
  line L11 (25, -39) -> (25, -36)
  line L12 (6.7281, 29.5792) -> (6.7281, 28.625)
  line L13 (6.7281, 28.625) -> (8.2975, 28.625)
  line L14 (8.2975, 28.625) -> (8.7453, 26.5871)
  line L15 (8.7453, 26.5871) -> (6.7281, 26.5871)
  line L16 (6.7281, 26.5871) -> (6.7281, 25.1274)
  line L17 (6.7281, 25.1274) -> (9.7835, 25.1274)
  line L18 (9.7835, 25.1274) -> (9.4996, 29.1021)
  line L19 (9.4996, 29.1021) -> (31.9548, 38.8479)
  line L20 (31.9548, 41.3881) -> (31.9548, 38.8479)
  point P0 (0, 0)
revolve "Revolution5" add sketch "Sketch71" angle 180 mid plane about axis through (21.3234, 1.813, 0) along (-0.9962784, 0.0861934, 0) contours L1 L20 L19 L18 L17 L16 L15 L14 L13 L12
sketch "Sketch72" plane through (4.4522, 3.2726, 26.4049) normal (-0.0861934, -0.9962784, 0) x (0.8625471, -0.0746236, 0.5004436)
  line L0 (25.9097, -0.4851) -> (25.9087, -1.4723)
  line L1 (25.9097, -0.4851) -> (17, -0.4758)
  line L2 (17, -0.4758) -> (16.999, -1.463)
  line L3 (25.9087, -1.4723) -> (16.999, -1.463)
  line L4 (-12.5937, -66.7439) -> (-13.4518, -67.2321)
  line L5 (-12.5937, -66.7439) -> (-17, -59)
  line L6 (-17, -59) -> (-17.8581, -59.4882)
  line L7 (-13.4518, -67.2321) -> (-17.8581, -59.4882)
  point P0 (-16.8102, -20.782)
extrude "Extrusion58" add sketch "Sketch72" along normal blind 3
properties part number "cSkull_meso_WOK_tall_VIS_left"
